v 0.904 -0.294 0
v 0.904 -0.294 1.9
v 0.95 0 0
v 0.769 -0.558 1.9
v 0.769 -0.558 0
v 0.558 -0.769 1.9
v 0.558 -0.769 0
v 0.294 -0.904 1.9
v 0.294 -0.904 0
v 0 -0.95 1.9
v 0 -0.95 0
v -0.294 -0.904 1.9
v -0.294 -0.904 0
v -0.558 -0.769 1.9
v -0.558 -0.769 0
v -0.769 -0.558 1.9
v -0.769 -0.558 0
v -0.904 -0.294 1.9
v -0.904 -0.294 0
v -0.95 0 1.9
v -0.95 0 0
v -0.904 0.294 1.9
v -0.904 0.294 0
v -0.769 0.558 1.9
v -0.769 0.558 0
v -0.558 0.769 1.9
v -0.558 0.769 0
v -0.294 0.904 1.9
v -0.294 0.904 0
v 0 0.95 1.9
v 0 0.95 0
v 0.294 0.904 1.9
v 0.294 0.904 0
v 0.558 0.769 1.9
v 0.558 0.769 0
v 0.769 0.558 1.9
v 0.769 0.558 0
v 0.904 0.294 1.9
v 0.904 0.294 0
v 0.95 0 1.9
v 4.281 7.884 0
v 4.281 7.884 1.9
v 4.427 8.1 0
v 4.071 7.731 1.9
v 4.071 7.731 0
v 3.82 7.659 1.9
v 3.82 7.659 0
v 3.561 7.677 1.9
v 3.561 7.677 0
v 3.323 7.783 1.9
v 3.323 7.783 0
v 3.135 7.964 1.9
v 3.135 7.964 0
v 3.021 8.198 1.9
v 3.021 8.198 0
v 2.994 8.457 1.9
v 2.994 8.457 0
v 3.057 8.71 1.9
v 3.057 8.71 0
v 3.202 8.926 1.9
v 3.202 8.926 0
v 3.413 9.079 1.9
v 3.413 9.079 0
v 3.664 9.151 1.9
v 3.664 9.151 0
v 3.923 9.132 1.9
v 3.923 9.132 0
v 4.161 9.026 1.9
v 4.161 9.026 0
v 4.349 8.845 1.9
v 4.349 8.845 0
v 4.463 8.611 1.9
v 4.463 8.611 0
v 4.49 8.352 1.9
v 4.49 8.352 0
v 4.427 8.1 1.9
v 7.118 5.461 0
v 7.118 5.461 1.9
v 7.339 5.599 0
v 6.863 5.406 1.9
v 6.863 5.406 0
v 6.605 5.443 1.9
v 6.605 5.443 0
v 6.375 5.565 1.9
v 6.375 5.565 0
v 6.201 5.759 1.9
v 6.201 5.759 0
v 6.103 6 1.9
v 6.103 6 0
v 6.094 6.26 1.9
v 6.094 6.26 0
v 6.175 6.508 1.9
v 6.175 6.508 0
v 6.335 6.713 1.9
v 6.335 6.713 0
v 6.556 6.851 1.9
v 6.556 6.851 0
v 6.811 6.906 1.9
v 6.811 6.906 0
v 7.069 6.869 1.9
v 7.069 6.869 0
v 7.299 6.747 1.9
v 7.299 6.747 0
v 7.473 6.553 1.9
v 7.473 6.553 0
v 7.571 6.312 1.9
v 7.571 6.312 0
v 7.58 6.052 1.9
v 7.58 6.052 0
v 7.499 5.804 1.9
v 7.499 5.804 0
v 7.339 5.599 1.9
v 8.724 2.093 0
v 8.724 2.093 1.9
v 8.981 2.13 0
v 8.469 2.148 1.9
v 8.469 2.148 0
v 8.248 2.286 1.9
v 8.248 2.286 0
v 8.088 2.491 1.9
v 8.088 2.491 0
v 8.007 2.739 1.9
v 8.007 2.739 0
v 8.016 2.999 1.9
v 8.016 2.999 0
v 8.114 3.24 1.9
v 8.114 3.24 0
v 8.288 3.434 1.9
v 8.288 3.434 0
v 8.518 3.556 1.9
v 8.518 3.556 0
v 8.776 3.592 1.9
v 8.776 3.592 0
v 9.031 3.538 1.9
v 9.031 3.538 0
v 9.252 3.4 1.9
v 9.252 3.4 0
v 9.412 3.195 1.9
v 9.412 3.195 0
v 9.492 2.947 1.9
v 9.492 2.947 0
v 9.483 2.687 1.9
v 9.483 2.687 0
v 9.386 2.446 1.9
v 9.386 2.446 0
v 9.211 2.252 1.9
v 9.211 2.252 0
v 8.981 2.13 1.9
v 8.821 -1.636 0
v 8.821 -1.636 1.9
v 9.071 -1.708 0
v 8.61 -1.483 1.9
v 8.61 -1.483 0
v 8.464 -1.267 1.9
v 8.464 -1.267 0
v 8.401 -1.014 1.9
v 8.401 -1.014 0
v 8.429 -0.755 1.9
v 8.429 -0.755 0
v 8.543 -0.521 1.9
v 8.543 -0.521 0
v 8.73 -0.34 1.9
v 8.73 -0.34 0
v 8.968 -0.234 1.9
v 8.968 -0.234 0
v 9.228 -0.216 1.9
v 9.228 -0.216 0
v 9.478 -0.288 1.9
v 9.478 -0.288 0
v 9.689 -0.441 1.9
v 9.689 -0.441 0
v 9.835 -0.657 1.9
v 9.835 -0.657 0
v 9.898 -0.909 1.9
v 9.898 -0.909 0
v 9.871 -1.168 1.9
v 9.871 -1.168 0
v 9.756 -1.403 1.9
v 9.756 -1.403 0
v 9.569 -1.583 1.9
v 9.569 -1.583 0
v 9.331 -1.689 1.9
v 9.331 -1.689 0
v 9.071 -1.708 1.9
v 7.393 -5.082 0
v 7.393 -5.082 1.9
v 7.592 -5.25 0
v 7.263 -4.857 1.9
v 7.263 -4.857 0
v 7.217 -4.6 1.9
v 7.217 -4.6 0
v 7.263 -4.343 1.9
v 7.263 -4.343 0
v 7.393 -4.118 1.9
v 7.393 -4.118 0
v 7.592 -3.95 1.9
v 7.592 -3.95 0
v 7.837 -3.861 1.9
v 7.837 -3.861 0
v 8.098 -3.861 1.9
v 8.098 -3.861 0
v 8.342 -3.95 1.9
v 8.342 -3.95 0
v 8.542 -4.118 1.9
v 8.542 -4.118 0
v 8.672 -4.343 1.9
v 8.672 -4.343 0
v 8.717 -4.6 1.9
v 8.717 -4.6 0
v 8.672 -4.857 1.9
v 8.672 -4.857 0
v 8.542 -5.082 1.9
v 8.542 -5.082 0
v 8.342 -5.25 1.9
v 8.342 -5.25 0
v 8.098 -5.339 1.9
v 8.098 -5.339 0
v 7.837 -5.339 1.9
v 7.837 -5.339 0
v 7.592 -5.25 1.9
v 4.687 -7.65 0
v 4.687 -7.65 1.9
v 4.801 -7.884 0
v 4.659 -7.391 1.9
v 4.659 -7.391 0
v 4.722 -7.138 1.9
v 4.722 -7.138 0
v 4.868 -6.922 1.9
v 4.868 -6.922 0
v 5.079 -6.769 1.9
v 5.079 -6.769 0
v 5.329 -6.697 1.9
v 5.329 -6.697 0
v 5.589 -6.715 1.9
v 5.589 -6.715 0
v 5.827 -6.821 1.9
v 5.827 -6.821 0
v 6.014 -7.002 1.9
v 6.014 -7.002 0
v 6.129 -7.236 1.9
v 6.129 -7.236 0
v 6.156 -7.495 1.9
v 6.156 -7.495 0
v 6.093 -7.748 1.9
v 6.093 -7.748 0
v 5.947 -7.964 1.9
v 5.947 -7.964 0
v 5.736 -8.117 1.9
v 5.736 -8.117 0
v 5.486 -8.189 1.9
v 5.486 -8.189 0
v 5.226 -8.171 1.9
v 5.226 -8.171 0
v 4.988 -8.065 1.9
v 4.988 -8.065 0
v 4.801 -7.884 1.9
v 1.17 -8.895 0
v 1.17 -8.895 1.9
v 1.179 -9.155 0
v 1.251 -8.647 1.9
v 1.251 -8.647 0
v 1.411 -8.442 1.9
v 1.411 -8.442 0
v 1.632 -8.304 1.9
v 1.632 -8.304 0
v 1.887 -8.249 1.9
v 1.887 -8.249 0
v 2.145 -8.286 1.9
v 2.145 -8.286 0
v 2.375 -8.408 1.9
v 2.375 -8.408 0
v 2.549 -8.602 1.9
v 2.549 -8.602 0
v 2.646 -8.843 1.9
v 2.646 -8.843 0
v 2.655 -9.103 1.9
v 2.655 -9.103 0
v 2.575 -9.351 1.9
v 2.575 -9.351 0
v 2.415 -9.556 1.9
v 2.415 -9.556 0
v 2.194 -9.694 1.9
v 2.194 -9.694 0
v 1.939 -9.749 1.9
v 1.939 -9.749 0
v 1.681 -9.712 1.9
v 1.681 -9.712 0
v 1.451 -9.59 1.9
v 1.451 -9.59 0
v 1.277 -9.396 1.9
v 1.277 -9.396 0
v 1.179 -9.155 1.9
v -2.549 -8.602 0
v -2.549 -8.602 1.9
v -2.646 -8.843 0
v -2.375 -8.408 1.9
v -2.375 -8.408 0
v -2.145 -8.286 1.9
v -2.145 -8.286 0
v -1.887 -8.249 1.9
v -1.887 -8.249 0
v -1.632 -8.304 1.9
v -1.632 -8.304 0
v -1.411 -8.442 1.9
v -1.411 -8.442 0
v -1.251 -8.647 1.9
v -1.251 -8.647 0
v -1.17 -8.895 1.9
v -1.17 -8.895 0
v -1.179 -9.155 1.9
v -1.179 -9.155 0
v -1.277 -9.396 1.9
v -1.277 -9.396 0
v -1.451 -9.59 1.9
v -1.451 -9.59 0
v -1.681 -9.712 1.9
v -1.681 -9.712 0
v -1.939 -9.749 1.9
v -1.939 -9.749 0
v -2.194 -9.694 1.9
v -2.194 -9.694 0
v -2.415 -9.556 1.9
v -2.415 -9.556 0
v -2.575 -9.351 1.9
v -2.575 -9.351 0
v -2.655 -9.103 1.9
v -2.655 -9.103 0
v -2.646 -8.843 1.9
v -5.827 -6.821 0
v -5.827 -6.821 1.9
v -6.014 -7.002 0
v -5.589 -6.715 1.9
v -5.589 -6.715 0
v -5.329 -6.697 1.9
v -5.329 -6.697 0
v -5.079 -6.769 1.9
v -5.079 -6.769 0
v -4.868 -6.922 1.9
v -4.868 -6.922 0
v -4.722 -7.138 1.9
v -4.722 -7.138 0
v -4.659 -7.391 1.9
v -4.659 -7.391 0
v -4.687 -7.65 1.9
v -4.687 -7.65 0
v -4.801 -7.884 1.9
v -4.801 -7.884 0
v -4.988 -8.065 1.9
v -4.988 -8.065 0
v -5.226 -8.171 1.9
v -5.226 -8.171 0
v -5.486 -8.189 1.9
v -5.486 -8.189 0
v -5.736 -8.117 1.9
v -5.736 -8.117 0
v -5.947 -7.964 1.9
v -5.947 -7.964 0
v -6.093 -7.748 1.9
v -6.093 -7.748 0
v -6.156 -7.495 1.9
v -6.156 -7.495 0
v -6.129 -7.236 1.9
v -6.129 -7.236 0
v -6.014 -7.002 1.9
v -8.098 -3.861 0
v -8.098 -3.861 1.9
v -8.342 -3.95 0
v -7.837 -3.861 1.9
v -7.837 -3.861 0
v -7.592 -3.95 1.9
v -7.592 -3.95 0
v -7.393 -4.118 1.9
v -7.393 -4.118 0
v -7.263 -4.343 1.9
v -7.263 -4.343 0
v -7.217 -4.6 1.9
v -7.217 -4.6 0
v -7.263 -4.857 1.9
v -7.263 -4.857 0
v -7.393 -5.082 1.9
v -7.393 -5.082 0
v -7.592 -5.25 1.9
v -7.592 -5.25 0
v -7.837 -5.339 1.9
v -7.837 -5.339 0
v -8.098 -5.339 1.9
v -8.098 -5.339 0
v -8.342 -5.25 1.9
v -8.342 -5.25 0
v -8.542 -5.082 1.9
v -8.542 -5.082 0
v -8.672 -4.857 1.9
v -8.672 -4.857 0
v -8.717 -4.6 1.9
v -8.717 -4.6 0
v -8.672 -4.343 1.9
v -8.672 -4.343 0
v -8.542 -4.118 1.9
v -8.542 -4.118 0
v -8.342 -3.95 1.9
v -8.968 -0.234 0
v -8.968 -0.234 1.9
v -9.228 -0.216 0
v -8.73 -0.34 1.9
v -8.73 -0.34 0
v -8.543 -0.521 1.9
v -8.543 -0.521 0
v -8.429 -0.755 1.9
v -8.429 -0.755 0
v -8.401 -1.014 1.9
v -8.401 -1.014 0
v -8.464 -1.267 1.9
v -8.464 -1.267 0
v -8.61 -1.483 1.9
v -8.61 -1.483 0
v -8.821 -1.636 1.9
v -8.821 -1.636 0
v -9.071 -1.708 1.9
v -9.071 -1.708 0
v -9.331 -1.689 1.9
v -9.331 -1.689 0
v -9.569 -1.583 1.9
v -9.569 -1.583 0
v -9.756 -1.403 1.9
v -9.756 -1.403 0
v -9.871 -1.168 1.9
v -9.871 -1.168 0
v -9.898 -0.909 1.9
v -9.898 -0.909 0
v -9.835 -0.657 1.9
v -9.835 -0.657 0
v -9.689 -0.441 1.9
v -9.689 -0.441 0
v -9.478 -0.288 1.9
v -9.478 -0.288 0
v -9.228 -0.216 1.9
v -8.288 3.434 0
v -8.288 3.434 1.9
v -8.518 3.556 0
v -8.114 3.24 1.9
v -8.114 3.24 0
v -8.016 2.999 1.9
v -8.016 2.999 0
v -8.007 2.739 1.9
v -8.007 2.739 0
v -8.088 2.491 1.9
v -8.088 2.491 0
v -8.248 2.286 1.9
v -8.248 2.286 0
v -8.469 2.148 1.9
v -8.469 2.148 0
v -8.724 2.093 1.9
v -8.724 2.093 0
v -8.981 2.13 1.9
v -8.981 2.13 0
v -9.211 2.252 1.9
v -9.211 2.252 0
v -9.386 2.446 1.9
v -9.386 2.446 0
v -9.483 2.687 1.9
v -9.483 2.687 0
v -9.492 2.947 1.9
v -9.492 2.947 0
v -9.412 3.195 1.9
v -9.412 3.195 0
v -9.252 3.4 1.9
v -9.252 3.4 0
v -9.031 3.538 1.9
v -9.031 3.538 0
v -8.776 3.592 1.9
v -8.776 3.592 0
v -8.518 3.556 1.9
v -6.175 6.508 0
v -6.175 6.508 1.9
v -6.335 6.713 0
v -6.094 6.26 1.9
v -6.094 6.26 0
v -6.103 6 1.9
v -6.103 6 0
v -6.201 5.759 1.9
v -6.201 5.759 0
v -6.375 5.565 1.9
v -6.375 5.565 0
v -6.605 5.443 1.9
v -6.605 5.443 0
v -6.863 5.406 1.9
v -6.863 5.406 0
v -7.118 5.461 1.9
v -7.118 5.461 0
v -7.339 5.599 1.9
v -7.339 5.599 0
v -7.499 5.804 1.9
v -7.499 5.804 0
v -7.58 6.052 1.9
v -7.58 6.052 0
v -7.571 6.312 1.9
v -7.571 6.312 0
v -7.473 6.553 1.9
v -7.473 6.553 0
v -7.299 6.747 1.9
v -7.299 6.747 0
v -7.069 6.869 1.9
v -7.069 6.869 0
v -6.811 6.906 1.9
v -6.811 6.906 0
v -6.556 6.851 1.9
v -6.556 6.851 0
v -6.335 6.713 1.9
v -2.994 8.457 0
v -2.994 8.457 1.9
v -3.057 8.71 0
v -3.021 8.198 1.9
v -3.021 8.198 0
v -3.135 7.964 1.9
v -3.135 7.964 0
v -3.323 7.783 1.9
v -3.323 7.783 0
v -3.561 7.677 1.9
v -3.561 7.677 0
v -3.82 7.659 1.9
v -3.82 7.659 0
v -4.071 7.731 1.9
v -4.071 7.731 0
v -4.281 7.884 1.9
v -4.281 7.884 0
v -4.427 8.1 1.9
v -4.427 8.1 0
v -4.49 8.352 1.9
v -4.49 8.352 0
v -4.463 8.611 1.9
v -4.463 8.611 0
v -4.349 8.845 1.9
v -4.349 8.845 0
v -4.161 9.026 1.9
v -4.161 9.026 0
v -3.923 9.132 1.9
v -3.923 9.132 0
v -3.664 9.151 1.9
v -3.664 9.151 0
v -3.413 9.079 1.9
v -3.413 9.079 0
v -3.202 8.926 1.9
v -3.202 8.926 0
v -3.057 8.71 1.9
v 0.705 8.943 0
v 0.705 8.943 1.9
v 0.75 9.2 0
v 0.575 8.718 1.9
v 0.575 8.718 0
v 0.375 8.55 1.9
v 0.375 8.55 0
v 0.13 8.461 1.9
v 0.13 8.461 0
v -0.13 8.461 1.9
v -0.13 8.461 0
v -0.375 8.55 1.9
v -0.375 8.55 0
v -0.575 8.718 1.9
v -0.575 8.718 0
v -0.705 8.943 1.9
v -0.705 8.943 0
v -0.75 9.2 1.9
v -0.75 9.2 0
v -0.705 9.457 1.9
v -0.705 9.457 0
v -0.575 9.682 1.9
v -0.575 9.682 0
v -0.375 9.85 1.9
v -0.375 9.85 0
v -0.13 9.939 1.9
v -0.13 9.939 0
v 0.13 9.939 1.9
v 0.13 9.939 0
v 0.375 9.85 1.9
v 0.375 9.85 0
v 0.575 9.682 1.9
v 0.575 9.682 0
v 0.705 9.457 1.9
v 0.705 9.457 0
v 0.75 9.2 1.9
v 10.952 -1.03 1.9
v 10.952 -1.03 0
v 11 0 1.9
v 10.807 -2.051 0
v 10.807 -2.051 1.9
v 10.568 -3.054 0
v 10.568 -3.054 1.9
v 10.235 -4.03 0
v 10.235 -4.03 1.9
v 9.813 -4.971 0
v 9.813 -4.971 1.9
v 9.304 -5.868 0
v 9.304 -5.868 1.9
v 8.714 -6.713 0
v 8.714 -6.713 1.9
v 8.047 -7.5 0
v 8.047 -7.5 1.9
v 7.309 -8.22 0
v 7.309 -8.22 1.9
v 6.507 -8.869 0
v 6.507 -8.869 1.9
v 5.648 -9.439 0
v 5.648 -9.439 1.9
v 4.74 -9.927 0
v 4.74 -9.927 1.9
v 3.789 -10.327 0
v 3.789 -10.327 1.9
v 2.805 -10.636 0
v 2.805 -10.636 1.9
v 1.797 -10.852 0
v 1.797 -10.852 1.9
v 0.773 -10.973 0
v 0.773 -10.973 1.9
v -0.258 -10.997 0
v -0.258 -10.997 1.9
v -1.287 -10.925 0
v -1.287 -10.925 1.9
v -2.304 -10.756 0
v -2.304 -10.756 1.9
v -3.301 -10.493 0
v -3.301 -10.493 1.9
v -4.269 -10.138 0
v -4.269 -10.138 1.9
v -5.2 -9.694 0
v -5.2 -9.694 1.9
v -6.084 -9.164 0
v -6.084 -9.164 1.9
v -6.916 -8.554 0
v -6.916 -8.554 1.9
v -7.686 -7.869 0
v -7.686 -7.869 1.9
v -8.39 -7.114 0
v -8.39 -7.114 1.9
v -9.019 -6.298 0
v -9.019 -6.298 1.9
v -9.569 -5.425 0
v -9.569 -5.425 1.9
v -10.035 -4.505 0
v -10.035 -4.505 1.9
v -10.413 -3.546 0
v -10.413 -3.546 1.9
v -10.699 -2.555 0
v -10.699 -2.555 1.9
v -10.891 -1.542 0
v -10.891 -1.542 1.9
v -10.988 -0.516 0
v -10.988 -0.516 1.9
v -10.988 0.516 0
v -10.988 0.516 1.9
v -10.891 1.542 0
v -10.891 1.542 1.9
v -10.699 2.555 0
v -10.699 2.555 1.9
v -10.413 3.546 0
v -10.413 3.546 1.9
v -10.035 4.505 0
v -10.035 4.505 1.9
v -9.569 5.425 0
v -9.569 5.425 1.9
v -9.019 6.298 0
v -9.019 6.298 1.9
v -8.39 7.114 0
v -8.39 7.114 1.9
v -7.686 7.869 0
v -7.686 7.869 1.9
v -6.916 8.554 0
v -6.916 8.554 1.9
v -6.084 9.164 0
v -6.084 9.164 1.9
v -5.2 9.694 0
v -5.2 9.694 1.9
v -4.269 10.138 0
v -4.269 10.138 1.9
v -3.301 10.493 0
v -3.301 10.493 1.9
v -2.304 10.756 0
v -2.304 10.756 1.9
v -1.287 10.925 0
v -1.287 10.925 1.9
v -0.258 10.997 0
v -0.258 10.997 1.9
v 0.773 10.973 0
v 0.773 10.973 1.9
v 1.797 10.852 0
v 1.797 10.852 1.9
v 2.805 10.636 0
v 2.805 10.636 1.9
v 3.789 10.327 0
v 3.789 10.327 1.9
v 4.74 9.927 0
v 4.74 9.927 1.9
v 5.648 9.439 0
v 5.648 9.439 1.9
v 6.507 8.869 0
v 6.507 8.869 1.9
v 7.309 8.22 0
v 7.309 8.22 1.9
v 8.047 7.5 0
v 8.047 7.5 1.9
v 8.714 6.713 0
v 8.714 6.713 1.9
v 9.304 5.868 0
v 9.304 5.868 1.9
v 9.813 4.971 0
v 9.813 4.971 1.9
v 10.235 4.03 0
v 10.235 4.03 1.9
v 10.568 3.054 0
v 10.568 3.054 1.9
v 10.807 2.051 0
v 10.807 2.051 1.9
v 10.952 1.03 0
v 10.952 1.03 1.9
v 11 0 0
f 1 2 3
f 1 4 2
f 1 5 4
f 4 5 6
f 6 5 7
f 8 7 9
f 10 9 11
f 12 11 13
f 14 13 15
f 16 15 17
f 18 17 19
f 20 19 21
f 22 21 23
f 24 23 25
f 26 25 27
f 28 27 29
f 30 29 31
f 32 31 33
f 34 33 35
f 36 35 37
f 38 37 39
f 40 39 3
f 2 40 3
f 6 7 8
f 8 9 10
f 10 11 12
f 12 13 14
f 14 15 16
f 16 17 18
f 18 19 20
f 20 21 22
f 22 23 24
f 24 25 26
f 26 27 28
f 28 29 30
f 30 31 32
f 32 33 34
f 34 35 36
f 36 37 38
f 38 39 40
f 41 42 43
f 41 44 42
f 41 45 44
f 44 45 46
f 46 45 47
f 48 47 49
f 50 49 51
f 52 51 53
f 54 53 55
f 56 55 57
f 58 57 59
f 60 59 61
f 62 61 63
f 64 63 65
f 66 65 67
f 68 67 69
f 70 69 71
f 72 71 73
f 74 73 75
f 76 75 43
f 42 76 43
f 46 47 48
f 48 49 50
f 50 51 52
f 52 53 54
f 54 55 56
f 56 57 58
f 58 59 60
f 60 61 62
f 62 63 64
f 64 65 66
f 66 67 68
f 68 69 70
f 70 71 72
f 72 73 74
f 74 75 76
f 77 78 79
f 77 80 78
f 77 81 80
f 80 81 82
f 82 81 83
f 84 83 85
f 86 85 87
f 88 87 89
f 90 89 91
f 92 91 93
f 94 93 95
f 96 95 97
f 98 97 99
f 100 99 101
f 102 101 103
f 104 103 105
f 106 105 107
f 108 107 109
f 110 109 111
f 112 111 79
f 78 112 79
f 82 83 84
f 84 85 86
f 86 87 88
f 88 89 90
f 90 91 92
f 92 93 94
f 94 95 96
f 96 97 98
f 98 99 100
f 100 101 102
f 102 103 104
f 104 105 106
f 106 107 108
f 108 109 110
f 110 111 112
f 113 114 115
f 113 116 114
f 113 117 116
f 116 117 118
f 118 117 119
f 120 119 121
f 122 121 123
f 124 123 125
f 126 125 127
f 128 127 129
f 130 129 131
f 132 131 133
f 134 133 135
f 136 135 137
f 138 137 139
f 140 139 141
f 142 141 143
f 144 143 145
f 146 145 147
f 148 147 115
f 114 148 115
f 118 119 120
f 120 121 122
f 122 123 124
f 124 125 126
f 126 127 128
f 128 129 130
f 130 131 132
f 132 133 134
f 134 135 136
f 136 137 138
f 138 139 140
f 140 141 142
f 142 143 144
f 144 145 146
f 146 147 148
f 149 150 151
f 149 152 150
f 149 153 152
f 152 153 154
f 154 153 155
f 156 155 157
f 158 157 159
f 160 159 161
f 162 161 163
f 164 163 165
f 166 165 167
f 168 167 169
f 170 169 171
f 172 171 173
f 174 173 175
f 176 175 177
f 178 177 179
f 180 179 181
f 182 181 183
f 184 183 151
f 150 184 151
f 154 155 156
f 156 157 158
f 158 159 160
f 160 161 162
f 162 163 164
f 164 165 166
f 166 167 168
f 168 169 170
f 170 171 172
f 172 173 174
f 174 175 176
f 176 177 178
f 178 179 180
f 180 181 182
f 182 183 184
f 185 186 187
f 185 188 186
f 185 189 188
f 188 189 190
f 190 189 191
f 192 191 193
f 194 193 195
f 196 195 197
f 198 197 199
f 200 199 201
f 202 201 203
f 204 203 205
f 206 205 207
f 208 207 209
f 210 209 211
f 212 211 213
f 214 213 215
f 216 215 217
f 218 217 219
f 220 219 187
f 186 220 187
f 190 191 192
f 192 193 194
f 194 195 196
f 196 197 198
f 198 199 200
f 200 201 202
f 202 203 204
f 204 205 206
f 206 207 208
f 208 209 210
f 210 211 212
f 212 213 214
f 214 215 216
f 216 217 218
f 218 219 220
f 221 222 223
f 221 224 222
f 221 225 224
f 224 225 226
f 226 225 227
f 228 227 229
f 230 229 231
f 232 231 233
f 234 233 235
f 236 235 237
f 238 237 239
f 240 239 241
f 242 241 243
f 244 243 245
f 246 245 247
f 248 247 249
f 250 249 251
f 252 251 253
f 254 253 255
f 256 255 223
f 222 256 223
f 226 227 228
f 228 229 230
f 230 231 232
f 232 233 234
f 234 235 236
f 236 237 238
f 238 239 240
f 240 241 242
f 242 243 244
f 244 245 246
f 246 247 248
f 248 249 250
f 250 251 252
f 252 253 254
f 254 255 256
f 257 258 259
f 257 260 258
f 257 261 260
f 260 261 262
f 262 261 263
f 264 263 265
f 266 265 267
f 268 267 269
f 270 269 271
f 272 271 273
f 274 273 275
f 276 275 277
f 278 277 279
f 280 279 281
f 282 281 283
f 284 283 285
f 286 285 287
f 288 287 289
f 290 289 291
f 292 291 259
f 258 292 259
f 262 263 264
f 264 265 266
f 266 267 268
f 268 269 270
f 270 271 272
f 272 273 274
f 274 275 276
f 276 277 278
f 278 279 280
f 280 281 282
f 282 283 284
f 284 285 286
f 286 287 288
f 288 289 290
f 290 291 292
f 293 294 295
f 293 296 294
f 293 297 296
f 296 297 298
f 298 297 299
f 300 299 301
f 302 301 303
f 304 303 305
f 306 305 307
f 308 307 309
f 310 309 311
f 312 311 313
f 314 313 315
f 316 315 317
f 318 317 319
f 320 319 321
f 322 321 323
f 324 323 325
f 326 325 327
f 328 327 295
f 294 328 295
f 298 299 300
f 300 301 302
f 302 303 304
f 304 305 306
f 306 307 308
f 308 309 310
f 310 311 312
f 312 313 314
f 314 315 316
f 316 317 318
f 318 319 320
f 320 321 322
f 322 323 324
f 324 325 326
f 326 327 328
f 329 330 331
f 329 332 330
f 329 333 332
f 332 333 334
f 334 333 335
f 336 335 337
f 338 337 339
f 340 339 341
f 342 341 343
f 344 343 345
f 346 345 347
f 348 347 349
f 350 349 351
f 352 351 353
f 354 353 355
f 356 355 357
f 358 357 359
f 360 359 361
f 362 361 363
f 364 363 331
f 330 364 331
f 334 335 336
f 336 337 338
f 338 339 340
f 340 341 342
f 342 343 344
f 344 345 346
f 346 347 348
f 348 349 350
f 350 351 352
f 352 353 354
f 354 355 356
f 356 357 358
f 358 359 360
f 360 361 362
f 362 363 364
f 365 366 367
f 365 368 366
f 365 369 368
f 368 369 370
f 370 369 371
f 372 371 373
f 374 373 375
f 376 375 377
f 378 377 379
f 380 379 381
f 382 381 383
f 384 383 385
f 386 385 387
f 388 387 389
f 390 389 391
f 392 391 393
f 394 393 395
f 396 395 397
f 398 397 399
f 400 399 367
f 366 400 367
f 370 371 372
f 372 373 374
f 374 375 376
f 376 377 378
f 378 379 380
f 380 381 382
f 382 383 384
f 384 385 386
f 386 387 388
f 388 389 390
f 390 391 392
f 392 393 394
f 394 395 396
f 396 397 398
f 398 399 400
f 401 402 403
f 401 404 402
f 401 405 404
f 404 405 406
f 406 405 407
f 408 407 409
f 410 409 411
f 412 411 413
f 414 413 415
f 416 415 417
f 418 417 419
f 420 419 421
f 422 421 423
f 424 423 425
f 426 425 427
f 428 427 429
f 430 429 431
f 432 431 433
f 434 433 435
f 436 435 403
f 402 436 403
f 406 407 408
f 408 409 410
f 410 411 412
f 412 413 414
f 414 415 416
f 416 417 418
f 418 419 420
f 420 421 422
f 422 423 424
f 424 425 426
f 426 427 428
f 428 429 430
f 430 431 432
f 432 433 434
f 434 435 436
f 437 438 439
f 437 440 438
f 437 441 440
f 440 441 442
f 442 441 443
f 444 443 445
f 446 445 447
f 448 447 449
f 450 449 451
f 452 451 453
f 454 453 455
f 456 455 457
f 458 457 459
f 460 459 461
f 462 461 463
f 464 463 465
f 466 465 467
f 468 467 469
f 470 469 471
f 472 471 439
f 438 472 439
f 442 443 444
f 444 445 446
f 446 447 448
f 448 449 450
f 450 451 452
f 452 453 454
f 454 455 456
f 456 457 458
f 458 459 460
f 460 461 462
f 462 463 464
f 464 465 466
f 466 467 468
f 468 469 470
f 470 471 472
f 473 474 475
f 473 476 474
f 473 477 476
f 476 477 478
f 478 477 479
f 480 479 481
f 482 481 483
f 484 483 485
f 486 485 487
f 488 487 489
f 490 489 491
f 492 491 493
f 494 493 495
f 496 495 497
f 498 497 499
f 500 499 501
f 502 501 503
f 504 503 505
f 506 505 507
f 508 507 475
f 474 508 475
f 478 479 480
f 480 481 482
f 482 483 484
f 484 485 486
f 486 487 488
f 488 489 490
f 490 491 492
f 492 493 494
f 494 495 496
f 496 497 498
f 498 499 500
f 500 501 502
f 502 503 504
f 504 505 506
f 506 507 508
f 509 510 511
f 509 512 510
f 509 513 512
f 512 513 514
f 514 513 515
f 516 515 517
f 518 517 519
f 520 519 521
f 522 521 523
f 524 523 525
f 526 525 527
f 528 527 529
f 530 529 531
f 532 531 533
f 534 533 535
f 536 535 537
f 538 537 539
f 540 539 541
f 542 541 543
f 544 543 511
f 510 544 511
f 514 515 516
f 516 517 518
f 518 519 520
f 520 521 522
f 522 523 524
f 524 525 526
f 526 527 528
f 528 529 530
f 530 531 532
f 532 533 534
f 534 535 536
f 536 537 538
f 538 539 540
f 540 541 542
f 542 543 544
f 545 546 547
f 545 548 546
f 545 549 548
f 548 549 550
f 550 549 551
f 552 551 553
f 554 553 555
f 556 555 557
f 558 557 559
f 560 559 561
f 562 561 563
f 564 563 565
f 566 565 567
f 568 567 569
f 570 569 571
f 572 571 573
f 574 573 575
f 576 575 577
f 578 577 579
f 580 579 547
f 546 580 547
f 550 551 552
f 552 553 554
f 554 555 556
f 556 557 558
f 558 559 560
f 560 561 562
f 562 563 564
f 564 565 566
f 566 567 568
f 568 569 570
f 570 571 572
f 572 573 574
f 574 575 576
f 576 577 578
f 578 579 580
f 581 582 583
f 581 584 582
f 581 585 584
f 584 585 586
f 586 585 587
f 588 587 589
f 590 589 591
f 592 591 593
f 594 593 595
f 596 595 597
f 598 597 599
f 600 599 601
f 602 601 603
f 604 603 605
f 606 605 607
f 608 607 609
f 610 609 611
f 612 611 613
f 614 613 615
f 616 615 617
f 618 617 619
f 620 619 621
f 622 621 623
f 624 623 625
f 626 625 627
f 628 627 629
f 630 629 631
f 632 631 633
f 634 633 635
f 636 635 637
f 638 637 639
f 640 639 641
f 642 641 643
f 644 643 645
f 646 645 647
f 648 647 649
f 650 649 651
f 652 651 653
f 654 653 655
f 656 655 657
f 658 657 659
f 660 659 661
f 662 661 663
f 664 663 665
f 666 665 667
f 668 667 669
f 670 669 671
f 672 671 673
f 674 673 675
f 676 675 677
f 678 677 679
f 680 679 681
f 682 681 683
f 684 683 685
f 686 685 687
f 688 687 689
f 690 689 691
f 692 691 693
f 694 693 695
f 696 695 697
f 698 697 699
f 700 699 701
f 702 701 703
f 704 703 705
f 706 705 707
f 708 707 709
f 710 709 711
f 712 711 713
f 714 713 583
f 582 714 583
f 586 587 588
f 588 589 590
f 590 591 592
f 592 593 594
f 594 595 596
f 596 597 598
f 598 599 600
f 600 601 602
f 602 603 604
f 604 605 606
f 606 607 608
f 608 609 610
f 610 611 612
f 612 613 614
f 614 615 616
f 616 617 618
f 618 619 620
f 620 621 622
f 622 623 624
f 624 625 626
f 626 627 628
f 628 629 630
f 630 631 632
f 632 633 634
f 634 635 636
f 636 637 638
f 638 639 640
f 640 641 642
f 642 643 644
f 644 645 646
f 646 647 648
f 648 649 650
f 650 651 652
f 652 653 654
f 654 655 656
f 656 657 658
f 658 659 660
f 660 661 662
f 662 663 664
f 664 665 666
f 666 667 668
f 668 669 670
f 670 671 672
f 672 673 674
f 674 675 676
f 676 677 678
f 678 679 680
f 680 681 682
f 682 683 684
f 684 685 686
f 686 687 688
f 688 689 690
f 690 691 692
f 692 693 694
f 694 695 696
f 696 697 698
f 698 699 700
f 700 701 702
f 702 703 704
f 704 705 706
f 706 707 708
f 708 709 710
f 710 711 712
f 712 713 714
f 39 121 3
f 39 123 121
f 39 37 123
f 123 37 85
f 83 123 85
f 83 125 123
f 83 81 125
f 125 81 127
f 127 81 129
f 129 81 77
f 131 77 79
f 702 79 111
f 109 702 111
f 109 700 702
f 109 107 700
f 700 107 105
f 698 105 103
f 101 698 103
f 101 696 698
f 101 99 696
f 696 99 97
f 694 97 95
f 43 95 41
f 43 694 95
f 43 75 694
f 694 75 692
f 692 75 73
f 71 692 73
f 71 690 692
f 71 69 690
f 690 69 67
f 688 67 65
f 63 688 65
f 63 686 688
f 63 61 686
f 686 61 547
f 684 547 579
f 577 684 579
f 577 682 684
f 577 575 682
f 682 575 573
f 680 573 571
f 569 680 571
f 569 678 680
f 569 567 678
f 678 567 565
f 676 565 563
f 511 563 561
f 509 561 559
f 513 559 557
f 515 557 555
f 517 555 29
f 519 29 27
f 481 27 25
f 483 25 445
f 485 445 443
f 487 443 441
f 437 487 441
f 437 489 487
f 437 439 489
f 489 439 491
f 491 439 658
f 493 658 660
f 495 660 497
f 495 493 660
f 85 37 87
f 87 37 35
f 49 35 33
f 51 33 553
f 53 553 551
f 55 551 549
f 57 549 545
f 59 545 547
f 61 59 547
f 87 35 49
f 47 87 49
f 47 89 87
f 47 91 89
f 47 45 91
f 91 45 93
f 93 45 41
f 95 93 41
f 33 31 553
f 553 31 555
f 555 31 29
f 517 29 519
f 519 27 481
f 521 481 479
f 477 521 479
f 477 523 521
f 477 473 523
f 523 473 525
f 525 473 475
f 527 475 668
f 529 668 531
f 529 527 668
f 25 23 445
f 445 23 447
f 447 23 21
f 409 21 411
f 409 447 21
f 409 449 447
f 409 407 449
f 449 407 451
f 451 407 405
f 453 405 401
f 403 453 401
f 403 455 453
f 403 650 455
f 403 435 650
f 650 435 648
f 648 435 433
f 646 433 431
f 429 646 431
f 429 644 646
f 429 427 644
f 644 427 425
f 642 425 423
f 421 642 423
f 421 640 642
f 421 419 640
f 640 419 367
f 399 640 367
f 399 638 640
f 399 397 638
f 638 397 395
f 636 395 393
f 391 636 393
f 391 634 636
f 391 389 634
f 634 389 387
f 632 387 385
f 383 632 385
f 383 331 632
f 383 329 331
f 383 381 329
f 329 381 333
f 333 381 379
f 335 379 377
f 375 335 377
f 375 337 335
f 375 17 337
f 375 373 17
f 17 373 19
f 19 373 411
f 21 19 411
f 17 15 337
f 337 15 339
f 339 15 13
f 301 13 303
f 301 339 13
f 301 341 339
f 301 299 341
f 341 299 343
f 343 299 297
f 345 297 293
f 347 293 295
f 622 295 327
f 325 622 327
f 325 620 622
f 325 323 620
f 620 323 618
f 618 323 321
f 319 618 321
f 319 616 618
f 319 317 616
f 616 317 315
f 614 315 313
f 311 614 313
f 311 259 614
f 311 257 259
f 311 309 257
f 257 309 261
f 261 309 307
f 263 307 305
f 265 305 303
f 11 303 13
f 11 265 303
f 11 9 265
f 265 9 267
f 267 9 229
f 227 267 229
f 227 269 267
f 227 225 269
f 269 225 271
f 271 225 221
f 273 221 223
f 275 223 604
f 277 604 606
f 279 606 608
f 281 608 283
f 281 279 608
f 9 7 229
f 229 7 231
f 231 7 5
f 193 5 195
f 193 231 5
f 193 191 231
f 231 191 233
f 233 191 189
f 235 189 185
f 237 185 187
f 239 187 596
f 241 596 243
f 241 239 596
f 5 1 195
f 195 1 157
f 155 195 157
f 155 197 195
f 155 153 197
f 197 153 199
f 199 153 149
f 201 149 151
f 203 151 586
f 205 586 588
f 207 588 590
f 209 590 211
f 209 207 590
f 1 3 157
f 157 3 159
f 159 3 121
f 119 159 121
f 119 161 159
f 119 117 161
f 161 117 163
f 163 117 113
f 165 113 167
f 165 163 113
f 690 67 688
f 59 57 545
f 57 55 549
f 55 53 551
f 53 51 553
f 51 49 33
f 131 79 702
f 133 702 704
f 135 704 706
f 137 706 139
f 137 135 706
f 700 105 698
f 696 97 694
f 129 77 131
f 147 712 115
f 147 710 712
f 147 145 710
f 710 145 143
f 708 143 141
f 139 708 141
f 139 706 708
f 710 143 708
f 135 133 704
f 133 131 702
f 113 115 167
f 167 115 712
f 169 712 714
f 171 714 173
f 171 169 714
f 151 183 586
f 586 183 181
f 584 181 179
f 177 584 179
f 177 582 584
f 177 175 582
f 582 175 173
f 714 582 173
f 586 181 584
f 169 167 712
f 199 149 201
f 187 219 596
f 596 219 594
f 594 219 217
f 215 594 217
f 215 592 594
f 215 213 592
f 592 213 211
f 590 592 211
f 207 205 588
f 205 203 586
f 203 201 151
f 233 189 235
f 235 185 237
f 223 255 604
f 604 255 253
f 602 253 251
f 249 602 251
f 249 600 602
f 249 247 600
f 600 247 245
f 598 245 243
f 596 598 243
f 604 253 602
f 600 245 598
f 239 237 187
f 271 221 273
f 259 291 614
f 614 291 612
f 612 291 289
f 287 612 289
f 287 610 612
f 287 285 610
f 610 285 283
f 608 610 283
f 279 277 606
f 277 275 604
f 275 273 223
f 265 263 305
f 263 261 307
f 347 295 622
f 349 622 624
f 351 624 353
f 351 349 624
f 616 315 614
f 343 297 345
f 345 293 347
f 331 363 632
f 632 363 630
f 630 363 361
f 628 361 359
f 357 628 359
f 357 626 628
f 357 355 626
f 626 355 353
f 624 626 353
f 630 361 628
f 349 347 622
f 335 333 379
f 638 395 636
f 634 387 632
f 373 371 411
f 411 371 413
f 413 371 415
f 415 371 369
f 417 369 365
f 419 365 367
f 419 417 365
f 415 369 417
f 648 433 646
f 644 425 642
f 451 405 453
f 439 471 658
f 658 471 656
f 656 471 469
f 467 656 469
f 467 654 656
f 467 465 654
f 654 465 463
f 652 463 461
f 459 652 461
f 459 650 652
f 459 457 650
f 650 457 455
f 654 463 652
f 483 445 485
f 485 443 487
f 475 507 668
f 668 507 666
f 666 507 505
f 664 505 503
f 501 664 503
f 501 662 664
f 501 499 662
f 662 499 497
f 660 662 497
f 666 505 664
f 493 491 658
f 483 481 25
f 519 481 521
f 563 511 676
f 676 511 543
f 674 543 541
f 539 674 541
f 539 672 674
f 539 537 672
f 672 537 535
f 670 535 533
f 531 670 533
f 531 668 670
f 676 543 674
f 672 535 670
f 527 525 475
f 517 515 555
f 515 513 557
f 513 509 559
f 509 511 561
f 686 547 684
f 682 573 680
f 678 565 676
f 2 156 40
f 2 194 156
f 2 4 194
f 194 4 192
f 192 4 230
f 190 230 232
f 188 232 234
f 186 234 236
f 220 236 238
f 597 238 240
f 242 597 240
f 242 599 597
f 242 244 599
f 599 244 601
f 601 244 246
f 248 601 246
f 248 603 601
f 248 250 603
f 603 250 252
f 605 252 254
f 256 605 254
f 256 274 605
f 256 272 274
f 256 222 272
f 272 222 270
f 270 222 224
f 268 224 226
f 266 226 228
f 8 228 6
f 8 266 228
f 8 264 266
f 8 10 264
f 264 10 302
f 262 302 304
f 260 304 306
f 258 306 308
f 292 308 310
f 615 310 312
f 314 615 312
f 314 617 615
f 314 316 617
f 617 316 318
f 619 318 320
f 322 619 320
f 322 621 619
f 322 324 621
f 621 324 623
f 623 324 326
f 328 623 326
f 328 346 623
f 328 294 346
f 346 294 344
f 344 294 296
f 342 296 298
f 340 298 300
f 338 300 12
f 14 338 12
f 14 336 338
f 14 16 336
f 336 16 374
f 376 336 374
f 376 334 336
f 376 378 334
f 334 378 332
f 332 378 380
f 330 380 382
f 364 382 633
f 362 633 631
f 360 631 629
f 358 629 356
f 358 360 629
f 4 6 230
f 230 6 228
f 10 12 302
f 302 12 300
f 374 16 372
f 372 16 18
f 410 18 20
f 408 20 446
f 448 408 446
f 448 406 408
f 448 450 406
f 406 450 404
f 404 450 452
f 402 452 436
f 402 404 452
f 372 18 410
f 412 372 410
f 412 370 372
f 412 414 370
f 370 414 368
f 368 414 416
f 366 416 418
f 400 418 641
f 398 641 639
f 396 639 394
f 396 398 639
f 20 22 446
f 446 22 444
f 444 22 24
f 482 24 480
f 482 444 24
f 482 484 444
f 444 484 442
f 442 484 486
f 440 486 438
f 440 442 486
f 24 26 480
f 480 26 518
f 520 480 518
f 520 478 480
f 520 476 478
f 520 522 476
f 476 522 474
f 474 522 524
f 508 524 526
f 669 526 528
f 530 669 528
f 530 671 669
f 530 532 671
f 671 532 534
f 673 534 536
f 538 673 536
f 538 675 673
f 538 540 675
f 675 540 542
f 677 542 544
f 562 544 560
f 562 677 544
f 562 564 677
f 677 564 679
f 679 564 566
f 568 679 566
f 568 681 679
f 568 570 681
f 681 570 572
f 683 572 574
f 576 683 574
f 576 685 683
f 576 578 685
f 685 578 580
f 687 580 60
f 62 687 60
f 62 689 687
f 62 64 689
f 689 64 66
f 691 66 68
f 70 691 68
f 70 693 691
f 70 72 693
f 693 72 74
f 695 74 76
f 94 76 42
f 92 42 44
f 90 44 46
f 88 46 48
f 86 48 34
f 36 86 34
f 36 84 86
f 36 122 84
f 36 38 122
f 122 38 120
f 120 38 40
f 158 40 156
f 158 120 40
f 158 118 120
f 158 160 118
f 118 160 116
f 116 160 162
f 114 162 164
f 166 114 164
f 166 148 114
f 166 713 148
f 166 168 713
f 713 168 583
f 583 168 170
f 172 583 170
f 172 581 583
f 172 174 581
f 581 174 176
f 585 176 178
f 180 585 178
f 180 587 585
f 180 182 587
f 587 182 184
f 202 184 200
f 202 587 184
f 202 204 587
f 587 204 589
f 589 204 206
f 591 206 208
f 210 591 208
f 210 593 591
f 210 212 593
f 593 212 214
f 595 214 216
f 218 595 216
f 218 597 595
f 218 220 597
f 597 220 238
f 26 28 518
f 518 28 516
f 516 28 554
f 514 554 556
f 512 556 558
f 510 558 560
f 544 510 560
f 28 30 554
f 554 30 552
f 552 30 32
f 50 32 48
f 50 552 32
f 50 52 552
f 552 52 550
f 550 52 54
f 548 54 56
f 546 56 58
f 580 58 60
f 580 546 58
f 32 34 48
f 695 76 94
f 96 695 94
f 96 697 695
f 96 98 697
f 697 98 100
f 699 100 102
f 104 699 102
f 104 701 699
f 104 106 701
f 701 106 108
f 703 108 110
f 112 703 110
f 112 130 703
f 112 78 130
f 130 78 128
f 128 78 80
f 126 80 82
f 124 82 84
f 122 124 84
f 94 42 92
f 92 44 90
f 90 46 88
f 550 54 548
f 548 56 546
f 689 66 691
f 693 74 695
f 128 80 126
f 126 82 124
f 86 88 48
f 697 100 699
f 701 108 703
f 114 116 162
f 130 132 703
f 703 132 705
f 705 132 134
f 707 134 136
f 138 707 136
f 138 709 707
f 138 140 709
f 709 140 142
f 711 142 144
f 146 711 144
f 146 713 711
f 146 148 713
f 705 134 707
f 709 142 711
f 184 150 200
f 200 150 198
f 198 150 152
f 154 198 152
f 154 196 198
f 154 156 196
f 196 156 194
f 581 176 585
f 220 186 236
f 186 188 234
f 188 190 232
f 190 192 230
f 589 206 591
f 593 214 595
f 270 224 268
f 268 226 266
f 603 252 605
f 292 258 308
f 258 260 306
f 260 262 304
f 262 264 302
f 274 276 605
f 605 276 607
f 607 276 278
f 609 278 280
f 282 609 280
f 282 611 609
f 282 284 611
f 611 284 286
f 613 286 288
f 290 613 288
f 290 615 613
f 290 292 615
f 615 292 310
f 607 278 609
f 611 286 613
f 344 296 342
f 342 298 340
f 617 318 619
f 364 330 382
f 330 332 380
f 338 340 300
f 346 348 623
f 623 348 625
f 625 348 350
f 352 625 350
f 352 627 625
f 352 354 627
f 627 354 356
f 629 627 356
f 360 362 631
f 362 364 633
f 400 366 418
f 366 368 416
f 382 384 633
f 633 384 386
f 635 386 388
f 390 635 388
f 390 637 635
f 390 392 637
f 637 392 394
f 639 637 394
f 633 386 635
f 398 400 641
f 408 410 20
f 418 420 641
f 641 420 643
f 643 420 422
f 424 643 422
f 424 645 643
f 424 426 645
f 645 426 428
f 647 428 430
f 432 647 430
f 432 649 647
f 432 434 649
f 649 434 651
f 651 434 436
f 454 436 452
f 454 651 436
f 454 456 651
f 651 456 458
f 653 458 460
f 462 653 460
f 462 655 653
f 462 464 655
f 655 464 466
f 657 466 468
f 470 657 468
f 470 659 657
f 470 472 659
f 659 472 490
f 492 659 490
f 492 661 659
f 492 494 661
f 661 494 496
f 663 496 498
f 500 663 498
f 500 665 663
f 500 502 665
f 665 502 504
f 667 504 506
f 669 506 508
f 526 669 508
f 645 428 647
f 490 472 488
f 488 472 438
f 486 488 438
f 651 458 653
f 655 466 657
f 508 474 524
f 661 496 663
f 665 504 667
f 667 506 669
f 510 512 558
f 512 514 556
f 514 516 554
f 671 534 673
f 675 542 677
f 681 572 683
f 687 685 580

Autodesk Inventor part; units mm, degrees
ref_plane "YZ Plane" through (0, 0, 0) normal (1, 0, 0) x (0, 1, 0)
ref_plane "XZ Plane" through (0, 0, 0) normal (0, 1, 0) x (-1, 0, 0)
ref_plane "XY Plane" through (0, 0, 0) normal (0, 0, 1) x (1, 0, 0)
sketch "Skizze3" plane through (0, 0, 0) normal (0, 0, 1) x (1, 0, 0)
  circle A0 centre (0, 0) radius 11
  line L0 (-11, 11) -> (11, 11)
  line L1 (11, 11) -> (11, -11)
  line L2 (11, -11) -> (-11, -11)
  line L3 (-11, -11) -> (-11, 11)
  dimension "d13" = 22
extrude "Extrusion3" add sketch "Skizze3" along normal blind 1.9 contours A0
sketch "Skizze4" plane through (0, 0, 1.9) normal (0, 0, 1) x (1, 0, 0)
  circle A0 centre (0, 0) radius 11 projected
  circle A1 centre (0, 9.2) radius 0.75
  line L0 (0, 9.2) -> (0, 11)
  dimension "d17" = 1.5
  dimension "d26" = 1.8
extrude "Extrusion4" cut sketch "Skizze4" against normal through all contours A1
pattern_circular "Runde Anordnung1" count 15 over 360 about axis through (0, 0, -10) along (0, 0, 1) of "Extrusion4"
sketch "Skizze5" plane through (0, 0, 1.9) normal (0, 0, 1) x (1, 0, 0)
  circle A0 centre (0, 0) radius 11 projected
  circle A1 centre (0, 0) radius 0.95
  dimension "d23" = 1.9
extrude "Extrusion5" cut sketch "Skizze5" against normal through all contours A1
properties part number "EncoderWheel2"
